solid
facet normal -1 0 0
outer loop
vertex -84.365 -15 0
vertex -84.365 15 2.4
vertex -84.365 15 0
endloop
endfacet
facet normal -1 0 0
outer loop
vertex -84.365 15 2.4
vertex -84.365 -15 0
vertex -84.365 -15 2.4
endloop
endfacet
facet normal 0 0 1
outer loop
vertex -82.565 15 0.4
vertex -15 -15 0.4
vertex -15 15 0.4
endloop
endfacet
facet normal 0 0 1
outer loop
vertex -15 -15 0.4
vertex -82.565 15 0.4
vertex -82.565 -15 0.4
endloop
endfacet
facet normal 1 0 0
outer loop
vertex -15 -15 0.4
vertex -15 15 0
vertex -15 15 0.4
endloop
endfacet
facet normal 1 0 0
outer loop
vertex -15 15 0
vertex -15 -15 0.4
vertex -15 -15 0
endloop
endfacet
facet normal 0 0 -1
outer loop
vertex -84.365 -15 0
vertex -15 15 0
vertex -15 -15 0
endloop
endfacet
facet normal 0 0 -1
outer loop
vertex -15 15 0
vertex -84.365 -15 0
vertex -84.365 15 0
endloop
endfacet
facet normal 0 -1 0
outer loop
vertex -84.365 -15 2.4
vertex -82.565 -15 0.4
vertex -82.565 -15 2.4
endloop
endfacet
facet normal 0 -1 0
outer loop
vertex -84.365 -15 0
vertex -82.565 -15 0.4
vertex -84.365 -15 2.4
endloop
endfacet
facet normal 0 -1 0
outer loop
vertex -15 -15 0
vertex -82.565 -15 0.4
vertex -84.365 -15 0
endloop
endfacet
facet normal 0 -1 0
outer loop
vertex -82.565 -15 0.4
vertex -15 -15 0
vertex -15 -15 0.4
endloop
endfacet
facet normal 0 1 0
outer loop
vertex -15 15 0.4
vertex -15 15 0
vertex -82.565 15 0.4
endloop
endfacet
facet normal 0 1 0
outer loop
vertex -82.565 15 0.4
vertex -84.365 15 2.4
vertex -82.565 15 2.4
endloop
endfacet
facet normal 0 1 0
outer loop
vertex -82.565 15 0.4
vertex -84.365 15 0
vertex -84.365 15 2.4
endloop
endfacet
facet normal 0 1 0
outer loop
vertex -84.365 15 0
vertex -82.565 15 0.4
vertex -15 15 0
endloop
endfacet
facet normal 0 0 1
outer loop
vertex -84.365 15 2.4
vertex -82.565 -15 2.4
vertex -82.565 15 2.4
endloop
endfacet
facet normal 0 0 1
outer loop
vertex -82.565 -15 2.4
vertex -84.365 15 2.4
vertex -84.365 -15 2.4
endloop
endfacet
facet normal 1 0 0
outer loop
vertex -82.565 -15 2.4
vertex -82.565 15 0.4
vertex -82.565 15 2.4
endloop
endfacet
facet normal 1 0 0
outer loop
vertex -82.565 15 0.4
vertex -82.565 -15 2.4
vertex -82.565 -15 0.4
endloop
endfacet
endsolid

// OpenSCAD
imageResolution = 19.7; //dots per mm
imageScaleFactor = 1/imageResolution;
imageX = 416; //px
imageY = 560; //px
imageHeight = 100; //mm
hotFudge = 20; //mm

file = "FGen1.png";
fingerprintX = 30;
fingerprintY = 30;
fingerprintScale = 1.4;
fingerprintRidgeHeight = .2;
fingerprintBaseThickness = .2;
base = .4;
fingerEndWingLength = 69.365;//-X side
motorEndWingLength = 52.163;//+X side
//wingLength = 20;//4.7;
wingWidth = 1.8;
wingHeight = 2.4; //Including base, mm
spongeHeight = 3;
spongeCellWidth = 2.18;
spongeCellHeight = 1.2;
spongeWall=.2;
spongeLength = fingerprintY;
totalLength = 30;//36;

union() {
    translate([-fingerprintX / 2-fingerEndWingLength, -totalLength / 2, 0]) cube([fingerEndWingLength, totalLength, base], center = false);
    translate([-fingerprintX / 2 - fingerEndWingLength, -totalLength / 2, 0]) cube([wingWidth, totalLength, wingHeight]);

    //fingerprint("FGen1.png", 1, 24, 24, .2, .2);
}

module fingerprint(fname, scale, xDim, yDim, ridgeThickness, baseThickness) {
    union() {
        intersection() {
            scale([scale,scale,1],center=true)
            resize(newsize=[imageX*imageScaleFactor,imageY*imageScaleFactor, ridgeThickness])
                surface(file = fname, center = true, invert = true);;
            cube([xDim, yDim, ridgeThickness * 2], center = true);
        }
        translate([-xDim/2, -yDim/2, -2*baseThickness])
            cube([xDim, yDim, baseThickness]);
    }
}

module sponge(holeSize, sliceSize, strutSize, slabSize, xDim, yDim, zDim) {

  n = (zDim - slabSize) / (slabSize + sliceSize);

  size = [xDim, yDim, slabSize * (n + 1) + sliceSize * n]; //x,y,z size

  translate([-xDim / 2, -yDim / 2, -( slabSize * (n + 1) + sliceSize * n)])
  union() {
    difference() {
      cube(size);

      for (z = [slabSize: sliceSize + slabSize: size[2] - slabSize]) {
        for (x = [0: holeSize + strutSize: size[0]]) {

          if (round(x / (holeSize + strutSize)) % 2 == 1 && z == slabSize) {
            translate([x + strutSize, 0, 0])
            cube([holeSize, size[1], sliceSize + slabSize]);
          } else if (round((z - slabSize) / (sliceSize + slabSize)) % 2 == 0) {
            //if (x < size[0] - holeSize)o {
            translate([x + strutSize, 0, z])
            cube([holeSize, size[1], sliceSize]);
            //}
          } else {
            translate([x - (holeSize / 2) + strutSize / 2, 0, z])
            cube([holeSize, size[1], sliceSize]);
          }

          //echo(x = x, z = z);
        }
      }

    }
    cube([strutSize, size[1], size[2]]);
    translate([size[0] - strutSize, 0, 0])
    cube([strutSize, size[1], size[2]]);
  };
}
